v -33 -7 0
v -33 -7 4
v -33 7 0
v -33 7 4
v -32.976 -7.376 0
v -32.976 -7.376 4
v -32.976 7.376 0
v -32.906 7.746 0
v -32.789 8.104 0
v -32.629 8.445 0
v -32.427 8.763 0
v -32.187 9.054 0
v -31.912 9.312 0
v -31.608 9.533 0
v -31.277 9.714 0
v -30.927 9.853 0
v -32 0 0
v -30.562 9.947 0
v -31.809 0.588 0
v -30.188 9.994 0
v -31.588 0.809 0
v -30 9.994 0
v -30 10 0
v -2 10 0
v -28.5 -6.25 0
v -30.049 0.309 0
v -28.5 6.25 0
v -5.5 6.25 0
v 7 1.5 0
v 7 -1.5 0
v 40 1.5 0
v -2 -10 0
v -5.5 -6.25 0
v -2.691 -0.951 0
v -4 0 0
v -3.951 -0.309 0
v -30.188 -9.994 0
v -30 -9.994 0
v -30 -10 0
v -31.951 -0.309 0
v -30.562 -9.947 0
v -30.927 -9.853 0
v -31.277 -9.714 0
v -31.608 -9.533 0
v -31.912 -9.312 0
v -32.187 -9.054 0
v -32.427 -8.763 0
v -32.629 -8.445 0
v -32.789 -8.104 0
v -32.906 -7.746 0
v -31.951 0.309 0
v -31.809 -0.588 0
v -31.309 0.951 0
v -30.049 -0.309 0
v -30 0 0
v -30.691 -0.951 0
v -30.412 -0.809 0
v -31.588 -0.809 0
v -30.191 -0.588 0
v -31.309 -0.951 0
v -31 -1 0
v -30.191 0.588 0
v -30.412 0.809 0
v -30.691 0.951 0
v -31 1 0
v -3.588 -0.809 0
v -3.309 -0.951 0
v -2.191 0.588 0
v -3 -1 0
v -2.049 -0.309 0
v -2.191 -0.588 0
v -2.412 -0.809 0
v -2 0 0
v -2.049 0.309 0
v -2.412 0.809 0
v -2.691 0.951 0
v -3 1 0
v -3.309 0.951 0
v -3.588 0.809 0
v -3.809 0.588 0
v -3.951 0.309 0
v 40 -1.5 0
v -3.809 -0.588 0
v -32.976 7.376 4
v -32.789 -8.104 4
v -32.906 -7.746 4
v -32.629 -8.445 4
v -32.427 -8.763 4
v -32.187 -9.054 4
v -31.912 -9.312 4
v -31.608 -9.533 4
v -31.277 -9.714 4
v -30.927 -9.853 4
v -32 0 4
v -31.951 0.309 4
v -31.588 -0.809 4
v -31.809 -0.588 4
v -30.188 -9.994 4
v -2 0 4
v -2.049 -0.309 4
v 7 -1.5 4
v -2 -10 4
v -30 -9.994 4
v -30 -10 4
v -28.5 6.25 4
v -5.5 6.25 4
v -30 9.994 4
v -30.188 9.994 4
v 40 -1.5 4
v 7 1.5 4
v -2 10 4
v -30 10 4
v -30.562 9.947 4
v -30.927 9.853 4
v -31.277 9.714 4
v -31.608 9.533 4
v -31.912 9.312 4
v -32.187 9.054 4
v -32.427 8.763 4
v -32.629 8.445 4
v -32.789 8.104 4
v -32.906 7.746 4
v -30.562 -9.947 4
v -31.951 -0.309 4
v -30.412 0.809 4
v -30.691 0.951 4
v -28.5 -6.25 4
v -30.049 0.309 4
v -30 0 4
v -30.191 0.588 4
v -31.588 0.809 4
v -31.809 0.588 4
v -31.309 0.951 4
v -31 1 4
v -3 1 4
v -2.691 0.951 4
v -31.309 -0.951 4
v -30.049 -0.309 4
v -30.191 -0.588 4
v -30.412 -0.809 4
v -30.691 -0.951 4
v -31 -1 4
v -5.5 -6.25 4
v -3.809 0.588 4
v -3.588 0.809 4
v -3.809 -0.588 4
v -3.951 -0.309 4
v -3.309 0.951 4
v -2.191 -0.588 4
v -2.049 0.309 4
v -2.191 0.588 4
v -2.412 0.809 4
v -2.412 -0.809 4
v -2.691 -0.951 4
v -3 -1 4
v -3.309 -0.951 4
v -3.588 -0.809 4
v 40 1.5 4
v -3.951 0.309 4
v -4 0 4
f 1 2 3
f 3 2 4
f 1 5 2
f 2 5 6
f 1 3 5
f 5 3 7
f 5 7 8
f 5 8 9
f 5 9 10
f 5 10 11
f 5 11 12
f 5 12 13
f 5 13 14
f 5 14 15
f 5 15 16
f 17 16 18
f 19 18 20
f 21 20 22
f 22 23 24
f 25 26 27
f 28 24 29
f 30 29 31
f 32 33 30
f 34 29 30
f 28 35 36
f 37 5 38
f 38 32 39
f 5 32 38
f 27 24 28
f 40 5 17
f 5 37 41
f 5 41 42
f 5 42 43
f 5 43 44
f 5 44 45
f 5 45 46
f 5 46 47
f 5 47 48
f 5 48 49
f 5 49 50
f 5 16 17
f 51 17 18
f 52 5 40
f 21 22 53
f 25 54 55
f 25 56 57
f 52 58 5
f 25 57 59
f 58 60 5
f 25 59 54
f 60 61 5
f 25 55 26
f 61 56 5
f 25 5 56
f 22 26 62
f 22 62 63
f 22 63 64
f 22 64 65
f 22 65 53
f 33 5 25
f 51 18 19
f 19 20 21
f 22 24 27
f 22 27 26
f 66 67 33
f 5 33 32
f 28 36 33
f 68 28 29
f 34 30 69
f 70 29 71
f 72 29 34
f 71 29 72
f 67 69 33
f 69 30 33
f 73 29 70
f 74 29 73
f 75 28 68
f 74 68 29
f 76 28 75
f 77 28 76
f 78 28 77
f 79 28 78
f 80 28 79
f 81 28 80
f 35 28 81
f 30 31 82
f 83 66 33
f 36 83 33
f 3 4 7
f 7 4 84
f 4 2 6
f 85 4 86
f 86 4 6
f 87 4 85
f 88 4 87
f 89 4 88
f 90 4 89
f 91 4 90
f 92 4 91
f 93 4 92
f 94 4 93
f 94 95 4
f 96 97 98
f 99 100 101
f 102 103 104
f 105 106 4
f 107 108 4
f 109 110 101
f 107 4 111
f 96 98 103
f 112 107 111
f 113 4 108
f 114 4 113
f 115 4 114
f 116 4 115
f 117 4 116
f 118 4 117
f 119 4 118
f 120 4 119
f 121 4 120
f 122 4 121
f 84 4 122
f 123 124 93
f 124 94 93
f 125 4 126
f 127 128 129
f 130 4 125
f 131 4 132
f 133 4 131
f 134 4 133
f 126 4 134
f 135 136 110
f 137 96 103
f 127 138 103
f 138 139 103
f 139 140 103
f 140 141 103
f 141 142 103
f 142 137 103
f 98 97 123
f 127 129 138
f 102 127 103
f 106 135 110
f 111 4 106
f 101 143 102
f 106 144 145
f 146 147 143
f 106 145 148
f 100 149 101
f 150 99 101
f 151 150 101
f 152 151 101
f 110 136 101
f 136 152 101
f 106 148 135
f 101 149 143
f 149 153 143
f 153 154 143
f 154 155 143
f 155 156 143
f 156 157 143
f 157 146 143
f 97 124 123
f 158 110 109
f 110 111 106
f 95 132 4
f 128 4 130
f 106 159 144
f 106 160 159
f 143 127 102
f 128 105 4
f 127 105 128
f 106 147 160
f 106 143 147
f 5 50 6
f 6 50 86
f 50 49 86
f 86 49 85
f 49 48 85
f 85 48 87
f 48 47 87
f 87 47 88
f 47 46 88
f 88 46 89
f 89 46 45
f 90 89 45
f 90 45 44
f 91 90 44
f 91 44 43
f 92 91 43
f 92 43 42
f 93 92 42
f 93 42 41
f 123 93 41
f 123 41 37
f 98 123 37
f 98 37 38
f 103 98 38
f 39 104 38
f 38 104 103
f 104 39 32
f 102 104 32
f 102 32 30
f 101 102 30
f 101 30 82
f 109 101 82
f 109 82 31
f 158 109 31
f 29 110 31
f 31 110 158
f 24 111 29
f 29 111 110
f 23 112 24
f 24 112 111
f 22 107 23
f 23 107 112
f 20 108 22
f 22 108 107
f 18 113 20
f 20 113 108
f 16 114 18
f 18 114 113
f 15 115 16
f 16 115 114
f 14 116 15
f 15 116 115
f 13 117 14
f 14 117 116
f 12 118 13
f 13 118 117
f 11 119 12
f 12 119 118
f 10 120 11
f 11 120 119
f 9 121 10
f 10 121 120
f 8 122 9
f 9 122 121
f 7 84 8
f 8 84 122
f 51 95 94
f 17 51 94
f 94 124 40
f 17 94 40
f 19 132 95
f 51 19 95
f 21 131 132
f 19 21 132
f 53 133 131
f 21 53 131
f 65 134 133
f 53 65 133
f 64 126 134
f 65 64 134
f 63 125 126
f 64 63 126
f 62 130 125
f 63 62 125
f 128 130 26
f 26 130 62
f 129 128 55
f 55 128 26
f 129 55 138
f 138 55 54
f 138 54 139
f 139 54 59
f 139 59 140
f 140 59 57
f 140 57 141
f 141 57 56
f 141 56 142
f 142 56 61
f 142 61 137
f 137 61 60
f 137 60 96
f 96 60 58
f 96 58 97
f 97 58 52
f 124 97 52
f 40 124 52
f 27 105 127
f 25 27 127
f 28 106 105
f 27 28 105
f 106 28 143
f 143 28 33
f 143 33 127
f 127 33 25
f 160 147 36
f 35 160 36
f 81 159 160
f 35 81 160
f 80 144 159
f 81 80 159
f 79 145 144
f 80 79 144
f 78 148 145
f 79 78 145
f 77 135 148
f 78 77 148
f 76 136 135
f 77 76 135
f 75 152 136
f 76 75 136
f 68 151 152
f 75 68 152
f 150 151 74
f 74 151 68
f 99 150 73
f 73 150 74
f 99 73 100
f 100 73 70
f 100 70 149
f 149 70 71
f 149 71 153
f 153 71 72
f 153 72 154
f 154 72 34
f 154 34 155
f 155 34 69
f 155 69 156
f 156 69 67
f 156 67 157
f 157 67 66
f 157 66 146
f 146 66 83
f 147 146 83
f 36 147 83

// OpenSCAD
leg(23,12.5);

module leg(sl,sw){
	difference(){
		//solid parts
		union(){
			hull(){
				//main inner square
				translate([-30,-10,0]) cube([28,20,4]);
				//lower taper
				translate([5,-1.5,0]) cube([2,3,4]);
			}
	
			//leg
			translate([0,-1.5,0]) cube([40,3,4]);
			//top bar
			translate([-33,-7,0]) cube([6,14,4]);
			//rounded corners
			for (i = [ [-30,7,0],[-30,-7,0] ]){
				translate(i) cylinder(r=3,h=4,$fn=50);
			}	
		}
		//servo mounts
		for (i = [ [-3,0,-2],[-31,0,-2] ]){
			translate(i) cylinder(r=1,h=20,$fn=20);
		}
		//hole for servo body
		translate([-17,0,2])  cube([sl,sw,22], center=true);
	}
}
